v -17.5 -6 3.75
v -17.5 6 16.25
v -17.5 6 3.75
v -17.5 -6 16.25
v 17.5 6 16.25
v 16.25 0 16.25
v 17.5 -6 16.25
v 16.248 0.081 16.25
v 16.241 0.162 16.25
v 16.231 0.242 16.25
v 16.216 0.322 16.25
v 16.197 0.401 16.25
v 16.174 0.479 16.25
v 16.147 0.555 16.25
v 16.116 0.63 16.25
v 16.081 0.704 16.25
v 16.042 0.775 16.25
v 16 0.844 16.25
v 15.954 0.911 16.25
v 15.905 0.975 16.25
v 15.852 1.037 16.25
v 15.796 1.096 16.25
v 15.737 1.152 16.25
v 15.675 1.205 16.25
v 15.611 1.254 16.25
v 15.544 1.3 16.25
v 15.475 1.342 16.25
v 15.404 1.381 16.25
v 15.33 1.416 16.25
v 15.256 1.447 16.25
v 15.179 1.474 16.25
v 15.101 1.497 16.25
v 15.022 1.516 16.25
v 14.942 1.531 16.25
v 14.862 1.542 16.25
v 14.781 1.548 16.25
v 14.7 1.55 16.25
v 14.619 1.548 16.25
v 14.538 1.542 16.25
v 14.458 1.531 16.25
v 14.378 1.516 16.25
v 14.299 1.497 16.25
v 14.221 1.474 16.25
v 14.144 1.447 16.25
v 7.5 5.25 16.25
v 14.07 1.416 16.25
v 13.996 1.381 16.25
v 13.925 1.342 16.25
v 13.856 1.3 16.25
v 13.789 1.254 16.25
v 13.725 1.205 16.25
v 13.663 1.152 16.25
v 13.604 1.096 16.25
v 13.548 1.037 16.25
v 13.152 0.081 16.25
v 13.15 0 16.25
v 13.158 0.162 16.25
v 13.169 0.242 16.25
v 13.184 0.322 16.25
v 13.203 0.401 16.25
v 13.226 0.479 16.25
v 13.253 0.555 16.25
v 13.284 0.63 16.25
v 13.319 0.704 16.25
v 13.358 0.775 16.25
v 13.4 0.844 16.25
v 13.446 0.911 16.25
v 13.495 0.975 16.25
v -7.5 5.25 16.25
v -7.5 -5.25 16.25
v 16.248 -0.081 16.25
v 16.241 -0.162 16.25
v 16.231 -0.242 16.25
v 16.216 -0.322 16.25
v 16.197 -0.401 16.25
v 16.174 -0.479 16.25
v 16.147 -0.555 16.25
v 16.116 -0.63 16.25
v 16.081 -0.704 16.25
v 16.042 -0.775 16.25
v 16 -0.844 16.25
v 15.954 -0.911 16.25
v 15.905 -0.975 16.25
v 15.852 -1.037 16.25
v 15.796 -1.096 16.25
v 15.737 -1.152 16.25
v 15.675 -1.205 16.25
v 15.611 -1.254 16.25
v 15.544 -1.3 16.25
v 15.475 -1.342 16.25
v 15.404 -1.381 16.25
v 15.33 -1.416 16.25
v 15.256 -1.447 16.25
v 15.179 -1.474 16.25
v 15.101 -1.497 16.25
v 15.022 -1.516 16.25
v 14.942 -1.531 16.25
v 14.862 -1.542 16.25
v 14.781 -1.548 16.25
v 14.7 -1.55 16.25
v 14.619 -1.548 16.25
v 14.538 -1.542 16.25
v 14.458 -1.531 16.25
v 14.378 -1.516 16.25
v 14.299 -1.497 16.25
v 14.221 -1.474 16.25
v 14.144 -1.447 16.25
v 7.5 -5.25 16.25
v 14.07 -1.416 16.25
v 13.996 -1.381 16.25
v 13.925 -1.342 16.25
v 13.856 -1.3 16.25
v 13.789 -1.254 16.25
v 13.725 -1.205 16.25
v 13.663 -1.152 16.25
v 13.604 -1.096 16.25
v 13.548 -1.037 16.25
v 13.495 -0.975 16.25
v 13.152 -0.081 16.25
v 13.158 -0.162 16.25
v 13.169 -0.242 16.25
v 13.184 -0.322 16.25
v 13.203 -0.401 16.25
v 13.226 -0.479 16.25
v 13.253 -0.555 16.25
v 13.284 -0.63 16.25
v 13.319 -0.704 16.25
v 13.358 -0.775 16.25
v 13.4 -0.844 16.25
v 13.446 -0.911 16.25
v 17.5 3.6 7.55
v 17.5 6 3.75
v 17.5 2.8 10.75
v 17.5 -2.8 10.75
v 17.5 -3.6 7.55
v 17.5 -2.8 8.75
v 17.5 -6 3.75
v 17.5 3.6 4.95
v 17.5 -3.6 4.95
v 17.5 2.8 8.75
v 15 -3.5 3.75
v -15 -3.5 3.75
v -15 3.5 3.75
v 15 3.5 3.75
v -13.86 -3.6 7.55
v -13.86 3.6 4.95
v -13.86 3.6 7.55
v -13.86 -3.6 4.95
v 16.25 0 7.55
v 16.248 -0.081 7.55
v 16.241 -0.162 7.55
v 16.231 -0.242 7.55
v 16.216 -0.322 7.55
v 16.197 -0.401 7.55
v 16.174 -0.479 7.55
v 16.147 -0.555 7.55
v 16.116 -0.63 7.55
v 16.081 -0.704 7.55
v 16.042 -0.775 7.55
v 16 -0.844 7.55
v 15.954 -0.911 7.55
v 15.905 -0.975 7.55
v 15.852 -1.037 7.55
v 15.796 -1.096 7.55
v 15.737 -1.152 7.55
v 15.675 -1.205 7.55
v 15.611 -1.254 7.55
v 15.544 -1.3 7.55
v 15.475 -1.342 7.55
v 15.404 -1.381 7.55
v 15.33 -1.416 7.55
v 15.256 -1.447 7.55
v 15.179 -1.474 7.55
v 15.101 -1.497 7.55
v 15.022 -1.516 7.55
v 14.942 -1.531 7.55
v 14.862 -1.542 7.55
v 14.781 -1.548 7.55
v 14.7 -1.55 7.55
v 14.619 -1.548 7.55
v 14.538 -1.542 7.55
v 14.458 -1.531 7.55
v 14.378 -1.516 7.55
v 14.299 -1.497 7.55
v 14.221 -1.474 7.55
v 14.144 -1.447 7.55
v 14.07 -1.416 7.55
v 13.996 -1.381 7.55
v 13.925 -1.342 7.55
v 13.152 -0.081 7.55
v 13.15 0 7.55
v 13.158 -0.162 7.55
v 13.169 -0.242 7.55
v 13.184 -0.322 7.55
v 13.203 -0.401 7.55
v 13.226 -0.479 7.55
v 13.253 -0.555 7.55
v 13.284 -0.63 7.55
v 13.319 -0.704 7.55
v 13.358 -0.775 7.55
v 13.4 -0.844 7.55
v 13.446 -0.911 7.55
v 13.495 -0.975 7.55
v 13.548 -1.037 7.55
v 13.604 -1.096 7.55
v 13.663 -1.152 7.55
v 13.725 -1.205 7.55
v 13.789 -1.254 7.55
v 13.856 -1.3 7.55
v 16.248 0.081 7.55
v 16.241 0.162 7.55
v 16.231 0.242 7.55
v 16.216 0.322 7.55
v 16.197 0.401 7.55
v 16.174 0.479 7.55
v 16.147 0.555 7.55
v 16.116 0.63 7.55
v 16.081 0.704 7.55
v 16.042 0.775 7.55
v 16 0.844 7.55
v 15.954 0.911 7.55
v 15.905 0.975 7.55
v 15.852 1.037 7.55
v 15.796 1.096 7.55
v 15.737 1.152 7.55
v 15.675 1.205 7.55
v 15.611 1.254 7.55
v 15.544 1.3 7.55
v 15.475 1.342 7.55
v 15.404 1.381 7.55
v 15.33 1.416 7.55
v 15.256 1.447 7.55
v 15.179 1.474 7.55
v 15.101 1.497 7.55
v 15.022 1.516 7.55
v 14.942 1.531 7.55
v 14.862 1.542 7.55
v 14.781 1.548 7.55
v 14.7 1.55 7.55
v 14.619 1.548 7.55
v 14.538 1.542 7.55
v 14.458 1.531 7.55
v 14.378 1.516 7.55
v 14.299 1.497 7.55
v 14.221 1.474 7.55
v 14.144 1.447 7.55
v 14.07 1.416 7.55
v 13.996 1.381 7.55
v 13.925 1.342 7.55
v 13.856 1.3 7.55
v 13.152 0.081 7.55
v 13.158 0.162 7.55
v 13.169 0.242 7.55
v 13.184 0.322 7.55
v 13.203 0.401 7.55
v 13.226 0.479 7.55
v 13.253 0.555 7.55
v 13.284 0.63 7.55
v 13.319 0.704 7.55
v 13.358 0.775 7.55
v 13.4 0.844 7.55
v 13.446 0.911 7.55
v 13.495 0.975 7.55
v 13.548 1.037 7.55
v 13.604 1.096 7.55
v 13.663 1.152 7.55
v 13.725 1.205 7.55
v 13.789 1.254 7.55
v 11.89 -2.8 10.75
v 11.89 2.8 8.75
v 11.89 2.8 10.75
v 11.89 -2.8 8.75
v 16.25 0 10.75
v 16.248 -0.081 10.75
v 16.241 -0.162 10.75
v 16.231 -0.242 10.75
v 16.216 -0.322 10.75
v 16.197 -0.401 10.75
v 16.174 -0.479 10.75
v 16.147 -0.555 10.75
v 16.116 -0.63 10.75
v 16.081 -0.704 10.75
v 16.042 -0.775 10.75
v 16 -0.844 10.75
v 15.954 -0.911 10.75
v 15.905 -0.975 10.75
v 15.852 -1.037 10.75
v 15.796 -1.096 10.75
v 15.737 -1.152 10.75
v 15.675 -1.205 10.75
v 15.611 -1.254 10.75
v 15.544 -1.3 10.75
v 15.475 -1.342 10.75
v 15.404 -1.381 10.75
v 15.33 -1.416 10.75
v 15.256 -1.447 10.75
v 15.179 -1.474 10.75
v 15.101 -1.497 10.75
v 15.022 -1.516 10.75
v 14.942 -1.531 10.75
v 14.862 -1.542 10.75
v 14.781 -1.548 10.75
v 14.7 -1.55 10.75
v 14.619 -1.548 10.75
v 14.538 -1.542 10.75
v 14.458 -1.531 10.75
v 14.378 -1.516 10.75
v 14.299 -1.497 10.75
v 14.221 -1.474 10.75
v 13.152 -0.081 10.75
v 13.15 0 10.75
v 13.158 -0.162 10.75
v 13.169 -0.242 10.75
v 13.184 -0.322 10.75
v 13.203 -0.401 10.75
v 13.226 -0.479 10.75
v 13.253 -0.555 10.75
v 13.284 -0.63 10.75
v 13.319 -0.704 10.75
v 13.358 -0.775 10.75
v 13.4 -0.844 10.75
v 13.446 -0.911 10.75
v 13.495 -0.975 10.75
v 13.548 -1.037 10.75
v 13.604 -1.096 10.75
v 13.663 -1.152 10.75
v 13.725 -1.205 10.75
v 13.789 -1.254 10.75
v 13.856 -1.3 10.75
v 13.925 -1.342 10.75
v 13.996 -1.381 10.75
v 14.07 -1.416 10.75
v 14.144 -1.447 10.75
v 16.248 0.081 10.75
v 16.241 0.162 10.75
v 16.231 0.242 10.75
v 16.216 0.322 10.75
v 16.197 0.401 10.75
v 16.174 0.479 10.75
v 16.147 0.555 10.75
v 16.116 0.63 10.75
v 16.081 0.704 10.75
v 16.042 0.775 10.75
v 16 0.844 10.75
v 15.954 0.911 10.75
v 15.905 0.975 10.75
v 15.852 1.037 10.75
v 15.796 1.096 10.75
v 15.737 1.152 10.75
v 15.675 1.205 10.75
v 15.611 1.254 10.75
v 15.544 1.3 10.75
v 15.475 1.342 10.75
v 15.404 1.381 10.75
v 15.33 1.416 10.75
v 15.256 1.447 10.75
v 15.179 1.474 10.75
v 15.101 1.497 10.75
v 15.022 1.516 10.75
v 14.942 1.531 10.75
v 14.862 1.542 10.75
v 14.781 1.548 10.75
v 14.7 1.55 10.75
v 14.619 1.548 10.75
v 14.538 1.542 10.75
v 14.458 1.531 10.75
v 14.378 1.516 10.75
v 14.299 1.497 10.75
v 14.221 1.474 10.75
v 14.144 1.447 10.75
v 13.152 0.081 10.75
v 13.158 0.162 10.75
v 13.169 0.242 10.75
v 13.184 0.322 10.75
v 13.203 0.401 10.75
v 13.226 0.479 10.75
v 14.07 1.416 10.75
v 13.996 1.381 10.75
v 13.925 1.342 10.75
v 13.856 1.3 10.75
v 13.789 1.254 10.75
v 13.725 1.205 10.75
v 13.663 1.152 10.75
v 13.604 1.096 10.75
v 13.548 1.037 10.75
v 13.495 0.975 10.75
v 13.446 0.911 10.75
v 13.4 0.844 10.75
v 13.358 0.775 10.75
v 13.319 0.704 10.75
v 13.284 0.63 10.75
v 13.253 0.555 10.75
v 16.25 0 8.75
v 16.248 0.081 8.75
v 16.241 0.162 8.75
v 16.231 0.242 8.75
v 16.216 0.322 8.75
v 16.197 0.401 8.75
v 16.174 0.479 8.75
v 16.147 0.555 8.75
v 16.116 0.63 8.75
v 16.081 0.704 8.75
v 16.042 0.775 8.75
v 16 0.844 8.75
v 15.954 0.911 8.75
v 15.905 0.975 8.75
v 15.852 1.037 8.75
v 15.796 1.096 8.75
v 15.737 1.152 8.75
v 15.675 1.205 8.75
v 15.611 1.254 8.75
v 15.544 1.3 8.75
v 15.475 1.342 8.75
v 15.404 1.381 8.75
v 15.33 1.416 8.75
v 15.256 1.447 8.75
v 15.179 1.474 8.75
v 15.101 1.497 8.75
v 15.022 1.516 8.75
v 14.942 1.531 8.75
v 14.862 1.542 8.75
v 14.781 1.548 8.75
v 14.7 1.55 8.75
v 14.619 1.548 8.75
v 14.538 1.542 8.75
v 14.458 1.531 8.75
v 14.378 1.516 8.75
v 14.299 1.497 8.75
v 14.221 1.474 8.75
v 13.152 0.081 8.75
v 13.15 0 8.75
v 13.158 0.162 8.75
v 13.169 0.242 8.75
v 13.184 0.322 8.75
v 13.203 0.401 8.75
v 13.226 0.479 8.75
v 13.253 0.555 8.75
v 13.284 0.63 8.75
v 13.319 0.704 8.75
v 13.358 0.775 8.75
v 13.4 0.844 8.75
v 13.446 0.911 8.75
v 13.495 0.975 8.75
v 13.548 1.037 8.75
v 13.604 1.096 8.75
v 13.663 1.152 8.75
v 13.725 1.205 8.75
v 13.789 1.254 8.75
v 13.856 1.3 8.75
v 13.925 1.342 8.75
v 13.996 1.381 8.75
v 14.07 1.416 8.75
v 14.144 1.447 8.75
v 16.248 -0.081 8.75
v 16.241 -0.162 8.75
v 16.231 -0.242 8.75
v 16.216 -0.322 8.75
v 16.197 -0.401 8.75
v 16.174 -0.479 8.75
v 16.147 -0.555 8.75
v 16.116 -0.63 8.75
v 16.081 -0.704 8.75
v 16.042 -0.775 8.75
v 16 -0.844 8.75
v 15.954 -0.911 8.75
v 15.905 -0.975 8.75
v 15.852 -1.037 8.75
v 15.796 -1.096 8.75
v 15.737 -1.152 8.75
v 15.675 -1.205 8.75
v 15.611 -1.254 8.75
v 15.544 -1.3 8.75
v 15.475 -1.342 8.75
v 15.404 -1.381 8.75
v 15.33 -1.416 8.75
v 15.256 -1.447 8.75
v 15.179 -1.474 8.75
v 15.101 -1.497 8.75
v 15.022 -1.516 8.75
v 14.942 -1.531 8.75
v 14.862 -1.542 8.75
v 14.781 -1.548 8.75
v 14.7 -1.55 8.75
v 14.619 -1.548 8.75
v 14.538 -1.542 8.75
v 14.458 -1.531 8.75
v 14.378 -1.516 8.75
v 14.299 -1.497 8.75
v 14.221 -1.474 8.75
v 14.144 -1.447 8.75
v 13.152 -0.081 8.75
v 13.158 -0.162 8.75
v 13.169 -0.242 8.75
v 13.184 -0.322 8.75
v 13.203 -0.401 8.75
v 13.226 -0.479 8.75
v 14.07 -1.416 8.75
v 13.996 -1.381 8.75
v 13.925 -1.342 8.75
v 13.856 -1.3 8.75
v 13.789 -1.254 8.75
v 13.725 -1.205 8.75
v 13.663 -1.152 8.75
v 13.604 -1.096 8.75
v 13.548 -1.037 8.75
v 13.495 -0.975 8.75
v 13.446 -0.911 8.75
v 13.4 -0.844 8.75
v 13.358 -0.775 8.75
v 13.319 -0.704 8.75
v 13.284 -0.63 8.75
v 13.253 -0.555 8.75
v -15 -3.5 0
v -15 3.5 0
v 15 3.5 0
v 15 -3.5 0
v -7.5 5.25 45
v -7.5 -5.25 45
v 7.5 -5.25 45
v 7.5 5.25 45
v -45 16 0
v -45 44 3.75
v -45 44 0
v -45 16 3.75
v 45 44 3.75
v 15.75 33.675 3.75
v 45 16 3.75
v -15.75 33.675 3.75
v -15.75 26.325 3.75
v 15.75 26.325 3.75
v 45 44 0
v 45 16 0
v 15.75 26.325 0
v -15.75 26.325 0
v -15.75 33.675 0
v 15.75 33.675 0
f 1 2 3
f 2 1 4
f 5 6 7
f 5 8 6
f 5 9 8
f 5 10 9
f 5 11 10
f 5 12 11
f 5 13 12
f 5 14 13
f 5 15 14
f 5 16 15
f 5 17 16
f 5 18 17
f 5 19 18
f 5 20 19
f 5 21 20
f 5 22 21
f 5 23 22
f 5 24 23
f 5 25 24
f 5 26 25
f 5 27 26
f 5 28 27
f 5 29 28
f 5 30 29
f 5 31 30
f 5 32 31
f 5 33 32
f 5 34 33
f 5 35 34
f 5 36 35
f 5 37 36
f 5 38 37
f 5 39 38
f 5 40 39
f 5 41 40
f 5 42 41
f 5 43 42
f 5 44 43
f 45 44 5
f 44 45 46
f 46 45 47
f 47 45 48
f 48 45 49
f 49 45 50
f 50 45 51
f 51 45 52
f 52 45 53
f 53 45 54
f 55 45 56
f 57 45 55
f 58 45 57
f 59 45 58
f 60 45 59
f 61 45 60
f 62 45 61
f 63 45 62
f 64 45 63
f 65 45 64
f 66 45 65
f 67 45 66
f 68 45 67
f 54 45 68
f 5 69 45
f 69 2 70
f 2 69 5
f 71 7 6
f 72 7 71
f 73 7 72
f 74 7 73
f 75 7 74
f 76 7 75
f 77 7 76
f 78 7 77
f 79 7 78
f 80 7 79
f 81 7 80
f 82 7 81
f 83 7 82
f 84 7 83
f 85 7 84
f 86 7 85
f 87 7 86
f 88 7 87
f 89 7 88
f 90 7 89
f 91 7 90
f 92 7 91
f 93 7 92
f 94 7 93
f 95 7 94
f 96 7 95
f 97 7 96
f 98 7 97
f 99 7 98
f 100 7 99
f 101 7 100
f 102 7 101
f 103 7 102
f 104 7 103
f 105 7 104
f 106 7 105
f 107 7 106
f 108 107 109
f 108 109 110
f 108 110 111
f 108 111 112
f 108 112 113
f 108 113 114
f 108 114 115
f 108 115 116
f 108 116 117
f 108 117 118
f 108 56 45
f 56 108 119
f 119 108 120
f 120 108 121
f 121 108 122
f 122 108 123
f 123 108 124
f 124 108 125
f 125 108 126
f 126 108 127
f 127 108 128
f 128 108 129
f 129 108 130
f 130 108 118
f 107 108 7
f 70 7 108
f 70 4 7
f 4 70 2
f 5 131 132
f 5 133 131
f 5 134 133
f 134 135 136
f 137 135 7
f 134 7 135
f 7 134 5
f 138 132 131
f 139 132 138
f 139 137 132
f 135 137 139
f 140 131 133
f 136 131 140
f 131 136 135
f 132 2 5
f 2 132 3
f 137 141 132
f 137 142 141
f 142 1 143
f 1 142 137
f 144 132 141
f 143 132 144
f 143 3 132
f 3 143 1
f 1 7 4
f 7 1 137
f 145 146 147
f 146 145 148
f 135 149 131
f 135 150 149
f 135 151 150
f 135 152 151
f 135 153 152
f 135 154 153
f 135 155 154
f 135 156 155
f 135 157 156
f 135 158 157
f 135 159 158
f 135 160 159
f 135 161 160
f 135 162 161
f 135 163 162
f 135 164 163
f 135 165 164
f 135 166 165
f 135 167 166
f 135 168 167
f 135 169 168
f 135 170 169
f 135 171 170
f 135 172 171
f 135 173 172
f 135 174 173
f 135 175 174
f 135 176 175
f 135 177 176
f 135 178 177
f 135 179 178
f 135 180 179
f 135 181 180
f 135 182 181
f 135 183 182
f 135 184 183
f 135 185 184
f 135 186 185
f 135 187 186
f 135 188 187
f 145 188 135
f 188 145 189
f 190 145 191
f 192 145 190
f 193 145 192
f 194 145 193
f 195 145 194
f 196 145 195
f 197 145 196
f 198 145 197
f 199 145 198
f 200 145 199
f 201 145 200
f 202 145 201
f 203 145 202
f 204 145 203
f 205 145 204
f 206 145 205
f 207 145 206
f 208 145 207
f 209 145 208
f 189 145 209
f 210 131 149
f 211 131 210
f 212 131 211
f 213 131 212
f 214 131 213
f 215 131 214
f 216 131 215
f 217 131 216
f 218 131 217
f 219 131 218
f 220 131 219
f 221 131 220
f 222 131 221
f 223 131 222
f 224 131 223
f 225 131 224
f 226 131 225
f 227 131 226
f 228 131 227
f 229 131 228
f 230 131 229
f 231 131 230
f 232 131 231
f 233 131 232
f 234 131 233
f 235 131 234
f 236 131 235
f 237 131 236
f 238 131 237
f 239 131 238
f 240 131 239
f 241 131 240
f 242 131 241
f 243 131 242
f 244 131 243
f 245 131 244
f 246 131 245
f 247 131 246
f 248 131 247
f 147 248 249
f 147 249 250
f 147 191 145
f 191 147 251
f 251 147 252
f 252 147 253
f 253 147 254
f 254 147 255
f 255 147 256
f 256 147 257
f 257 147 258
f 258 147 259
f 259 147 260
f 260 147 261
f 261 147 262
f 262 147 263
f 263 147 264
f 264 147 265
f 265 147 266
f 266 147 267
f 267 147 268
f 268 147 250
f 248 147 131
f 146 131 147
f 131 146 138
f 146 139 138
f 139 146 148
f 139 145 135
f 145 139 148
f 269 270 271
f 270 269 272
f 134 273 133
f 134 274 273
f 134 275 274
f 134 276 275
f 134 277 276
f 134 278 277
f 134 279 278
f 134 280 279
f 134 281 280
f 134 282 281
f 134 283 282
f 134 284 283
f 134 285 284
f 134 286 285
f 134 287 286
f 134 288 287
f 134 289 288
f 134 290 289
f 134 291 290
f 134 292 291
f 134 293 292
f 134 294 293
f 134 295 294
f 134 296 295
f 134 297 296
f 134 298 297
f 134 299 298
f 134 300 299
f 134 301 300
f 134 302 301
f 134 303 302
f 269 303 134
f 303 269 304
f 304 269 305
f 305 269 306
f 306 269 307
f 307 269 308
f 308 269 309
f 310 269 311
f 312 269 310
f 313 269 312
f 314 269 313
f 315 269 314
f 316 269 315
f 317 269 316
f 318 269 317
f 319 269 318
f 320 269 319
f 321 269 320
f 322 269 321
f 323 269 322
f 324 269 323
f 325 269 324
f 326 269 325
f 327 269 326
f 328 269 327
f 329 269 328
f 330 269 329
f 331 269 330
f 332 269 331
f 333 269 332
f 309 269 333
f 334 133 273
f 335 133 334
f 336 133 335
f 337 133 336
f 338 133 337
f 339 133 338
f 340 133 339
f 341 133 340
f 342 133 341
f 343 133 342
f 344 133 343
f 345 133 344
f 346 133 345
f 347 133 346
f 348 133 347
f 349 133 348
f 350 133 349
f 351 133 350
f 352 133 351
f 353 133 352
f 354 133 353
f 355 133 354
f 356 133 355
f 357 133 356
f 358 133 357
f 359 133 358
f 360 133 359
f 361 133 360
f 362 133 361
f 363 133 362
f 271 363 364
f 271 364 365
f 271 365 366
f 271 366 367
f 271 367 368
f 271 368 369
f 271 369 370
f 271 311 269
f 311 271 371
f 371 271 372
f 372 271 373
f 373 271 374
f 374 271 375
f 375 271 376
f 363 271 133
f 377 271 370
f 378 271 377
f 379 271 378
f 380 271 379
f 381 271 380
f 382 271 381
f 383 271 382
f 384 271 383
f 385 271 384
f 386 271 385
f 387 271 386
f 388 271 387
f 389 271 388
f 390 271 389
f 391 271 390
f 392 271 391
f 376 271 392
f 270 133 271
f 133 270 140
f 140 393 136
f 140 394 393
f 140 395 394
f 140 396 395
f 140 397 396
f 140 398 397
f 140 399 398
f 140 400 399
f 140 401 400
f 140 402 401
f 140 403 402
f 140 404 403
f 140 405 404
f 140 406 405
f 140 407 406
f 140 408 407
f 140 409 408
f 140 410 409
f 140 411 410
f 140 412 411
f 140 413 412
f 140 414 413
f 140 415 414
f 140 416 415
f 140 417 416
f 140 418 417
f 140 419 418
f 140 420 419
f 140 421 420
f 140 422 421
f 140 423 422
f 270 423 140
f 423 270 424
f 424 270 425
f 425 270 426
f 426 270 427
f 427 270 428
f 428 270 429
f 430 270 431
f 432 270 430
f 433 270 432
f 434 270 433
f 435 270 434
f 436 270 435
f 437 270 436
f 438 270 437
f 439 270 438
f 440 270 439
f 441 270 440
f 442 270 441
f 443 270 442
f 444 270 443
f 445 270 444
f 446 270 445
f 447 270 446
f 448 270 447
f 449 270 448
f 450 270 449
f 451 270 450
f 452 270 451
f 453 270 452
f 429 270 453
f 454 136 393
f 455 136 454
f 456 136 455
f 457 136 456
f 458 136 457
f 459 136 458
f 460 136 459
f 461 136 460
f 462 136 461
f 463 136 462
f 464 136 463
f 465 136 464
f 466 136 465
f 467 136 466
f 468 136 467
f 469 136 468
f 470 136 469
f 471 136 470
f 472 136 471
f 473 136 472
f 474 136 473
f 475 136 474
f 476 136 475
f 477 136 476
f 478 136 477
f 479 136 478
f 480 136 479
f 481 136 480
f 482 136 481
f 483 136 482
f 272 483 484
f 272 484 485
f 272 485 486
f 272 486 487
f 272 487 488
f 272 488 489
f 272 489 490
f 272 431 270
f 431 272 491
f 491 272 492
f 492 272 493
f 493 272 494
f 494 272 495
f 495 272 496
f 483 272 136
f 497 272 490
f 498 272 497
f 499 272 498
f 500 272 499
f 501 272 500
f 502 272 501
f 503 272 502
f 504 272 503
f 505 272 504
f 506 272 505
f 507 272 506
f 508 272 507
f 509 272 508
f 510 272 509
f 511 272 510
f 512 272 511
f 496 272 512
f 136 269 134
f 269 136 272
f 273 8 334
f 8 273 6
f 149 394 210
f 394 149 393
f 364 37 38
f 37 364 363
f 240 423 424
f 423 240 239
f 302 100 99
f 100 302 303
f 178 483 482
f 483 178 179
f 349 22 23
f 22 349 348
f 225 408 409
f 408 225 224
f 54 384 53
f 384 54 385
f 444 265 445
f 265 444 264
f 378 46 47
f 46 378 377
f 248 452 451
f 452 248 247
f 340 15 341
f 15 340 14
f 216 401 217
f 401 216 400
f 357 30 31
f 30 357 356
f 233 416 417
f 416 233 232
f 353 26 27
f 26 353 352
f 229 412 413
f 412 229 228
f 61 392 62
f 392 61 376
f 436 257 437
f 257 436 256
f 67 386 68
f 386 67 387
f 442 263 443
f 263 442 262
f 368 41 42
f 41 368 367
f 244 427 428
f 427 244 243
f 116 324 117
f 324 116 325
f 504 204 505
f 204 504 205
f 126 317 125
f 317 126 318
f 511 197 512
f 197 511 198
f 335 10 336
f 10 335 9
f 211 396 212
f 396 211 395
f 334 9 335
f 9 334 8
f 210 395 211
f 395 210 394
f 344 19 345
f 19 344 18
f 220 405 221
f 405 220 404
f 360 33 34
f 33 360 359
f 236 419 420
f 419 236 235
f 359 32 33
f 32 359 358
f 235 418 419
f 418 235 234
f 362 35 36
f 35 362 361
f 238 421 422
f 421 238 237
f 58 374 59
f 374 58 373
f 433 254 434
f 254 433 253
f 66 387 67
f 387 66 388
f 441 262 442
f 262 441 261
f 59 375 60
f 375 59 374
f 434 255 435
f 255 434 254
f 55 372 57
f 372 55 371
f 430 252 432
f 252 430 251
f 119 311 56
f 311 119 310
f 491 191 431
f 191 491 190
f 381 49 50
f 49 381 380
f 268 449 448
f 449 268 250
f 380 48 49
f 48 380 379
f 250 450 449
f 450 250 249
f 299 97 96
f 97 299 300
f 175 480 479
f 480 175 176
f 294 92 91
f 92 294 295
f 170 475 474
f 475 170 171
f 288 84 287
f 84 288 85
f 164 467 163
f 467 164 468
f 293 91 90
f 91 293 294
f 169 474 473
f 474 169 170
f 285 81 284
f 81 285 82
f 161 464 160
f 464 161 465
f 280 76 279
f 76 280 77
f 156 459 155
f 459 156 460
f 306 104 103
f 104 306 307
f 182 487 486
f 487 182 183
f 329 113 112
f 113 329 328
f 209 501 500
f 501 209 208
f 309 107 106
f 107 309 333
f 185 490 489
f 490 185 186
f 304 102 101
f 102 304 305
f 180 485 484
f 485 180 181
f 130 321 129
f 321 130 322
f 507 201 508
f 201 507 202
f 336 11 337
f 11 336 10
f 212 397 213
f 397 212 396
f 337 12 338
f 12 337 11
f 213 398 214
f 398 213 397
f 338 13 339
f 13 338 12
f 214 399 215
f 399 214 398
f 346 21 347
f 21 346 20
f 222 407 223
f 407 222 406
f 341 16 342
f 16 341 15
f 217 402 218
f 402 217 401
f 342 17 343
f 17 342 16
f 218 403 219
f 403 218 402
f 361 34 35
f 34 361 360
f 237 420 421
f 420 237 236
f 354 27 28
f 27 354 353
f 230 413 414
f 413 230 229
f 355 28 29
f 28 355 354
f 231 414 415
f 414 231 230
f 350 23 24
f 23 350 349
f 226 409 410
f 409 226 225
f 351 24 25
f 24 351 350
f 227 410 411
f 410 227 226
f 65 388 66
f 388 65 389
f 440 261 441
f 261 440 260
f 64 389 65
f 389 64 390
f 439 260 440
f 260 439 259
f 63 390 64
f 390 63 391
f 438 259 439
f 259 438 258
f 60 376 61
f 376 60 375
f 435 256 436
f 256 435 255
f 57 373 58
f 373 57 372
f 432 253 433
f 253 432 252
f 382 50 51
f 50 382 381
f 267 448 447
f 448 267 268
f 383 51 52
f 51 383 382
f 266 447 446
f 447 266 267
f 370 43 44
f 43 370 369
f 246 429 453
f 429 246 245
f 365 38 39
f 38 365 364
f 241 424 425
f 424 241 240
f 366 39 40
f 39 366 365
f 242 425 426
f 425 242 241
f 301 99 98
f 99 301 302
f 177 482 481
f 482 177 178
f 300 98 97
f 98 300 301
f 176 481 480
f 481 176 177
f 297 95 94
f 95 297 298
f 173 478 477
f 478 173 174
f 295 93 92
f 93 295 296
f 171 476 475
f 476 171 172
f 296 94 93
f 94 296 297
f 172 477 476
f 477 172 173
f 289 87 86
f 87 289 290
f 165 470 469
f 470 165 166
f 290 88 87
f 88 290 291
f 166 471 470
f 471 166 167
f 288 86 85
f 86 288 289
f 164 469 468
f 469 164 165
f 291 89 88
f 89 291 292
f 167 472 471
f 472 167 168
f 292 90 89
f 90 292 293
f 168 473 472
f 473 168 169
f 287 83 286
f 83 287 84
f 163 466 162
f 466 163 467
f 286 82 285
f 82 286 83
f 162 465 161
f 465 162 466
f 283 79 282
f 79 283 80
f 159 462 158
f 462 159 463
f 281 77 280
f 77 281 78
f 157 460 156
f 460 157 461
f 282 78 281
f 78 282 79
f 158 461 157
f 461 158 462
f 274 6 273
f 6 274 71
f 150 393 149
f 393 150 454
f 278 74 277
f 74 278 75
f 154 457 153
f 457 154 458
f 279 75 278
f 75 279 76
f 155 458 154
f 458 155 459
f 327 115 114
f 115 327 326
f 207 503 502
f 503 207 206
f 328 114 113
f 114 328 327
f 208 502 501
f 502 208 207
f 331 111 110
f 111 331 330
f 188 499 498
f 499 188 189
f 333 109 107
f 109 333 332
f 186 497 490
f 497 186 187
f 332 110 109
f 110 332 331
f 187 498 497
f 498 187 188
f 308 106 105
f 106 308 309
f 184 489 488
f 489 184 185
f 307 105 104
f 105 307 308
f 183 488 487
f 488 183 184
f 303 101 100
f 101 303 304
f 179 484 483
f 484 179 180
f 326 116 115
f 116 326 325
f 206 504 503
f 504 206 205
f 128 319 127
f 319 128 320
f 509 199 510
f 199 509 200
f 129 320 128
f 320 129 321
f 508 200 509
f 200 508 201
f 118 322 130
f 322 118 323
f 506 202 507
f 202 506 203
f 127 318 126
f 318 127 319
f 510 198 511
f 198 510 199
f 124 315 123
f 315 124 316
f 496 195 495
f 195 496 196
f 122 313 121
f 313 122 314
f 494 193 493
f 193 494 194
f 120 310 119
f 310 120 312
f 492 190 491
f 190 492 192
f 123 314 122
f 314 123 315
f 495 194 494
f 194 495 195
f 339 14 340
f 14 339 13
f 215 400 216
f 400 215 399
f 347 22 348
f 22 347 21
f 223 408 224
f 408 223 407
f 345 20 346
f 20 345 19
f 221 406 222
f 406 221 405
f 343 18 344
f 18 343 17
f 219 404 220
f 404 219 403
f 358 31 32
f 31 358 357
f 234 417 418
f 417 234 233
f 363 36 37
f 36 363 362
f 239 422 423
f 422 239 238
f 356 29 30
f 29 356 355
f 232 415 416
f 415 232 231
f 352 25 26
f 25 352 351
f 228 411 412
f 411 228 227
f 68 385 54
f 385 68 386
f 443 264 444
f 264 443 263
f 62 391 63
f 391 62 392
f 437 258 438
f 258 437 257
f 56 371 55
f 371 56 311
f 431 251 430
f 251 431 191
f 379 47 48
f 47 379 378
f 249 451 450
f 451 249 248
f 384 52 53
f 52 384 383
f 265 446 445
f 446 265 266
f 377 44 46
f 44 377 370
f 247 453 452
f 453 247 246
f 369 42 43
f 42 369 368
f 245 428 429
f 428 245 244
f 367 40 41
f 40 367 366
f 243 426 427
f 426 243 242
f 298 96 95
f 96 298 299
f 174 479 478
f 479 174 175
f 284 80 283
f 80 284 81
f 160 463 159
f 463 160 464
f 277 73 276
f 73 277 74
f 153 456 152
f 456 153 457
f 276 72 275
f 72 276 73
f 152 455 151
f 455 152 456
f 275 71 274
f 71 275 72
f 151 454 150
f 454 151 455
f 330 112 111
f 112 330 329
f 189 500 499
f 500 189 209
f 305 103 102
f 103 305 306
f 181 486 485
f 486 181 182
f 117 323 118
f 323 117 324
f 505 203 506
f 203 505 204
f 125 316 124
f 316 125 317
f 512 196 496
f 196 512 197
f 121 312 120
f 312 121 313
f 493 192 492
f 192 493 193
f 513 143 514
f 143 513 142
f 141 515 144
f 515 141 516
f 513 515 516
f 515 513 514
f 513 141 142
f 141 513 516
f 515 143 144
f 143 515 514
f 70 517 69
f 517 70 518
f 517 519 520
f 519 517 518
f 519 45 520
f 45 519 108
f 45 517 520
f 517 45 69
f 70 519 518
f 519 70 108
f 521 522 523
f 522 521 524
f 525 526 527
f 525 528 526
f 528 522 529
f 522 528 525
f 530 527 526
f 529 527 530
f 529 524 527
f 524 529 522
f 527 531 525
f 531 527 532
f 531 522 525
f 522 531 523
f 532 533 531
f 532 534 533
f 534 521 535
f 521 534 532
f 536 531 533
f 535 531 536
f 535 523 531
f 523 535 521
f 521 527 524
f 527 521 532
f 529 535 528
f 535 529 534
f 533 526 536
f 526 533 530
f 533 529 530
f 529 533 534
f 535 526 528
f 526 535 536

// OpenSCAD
$fa=3;
$fs=0.05;
p = 0.02;
p2 = 2*p;

a = 30.0;
b = 7.0;
c = 2.5;
m = 2.0;
s = 5.6;

cc = 1.5*c;
aa = a+5;
bb = b+5;

union() {    
    translate([0, 0, cc/2])
    cube([a, b, cc], center=true);    
    
    difference() {
        translate([0, 0, 5*c/2 + cc])
        cube([aa, bb, 5*c], center=true);
        translate([(aa-a)/2, 0, c/2 + cc + c/2])
        cube([a+(aa-a)/2+p+0.2, b+0.2, c+0.1], center=true);
        translate([aa/2 - s/2, 0, m/2 + 3.5*c])
        cube([s+p, s, m], center=true);
        translate([aa/2 - s/2, 0, 4*c/2 + cc + c])
        cylinder(d=3.1, h=4*c+p, center=true);
    }    
    
    translate([0, 0, 30/2 + 6 * c])
    cube([15, 1.5*b, 30], center=true);
}

translate([0, 30, 0])
difference() {
    translate([0, 0, cc/2])
    cube([3*a, 4*b, cc], center=true);
    translate([0, 0, cc/2])
    cube([a, b, cc+p]*1.05, center=true);
}
